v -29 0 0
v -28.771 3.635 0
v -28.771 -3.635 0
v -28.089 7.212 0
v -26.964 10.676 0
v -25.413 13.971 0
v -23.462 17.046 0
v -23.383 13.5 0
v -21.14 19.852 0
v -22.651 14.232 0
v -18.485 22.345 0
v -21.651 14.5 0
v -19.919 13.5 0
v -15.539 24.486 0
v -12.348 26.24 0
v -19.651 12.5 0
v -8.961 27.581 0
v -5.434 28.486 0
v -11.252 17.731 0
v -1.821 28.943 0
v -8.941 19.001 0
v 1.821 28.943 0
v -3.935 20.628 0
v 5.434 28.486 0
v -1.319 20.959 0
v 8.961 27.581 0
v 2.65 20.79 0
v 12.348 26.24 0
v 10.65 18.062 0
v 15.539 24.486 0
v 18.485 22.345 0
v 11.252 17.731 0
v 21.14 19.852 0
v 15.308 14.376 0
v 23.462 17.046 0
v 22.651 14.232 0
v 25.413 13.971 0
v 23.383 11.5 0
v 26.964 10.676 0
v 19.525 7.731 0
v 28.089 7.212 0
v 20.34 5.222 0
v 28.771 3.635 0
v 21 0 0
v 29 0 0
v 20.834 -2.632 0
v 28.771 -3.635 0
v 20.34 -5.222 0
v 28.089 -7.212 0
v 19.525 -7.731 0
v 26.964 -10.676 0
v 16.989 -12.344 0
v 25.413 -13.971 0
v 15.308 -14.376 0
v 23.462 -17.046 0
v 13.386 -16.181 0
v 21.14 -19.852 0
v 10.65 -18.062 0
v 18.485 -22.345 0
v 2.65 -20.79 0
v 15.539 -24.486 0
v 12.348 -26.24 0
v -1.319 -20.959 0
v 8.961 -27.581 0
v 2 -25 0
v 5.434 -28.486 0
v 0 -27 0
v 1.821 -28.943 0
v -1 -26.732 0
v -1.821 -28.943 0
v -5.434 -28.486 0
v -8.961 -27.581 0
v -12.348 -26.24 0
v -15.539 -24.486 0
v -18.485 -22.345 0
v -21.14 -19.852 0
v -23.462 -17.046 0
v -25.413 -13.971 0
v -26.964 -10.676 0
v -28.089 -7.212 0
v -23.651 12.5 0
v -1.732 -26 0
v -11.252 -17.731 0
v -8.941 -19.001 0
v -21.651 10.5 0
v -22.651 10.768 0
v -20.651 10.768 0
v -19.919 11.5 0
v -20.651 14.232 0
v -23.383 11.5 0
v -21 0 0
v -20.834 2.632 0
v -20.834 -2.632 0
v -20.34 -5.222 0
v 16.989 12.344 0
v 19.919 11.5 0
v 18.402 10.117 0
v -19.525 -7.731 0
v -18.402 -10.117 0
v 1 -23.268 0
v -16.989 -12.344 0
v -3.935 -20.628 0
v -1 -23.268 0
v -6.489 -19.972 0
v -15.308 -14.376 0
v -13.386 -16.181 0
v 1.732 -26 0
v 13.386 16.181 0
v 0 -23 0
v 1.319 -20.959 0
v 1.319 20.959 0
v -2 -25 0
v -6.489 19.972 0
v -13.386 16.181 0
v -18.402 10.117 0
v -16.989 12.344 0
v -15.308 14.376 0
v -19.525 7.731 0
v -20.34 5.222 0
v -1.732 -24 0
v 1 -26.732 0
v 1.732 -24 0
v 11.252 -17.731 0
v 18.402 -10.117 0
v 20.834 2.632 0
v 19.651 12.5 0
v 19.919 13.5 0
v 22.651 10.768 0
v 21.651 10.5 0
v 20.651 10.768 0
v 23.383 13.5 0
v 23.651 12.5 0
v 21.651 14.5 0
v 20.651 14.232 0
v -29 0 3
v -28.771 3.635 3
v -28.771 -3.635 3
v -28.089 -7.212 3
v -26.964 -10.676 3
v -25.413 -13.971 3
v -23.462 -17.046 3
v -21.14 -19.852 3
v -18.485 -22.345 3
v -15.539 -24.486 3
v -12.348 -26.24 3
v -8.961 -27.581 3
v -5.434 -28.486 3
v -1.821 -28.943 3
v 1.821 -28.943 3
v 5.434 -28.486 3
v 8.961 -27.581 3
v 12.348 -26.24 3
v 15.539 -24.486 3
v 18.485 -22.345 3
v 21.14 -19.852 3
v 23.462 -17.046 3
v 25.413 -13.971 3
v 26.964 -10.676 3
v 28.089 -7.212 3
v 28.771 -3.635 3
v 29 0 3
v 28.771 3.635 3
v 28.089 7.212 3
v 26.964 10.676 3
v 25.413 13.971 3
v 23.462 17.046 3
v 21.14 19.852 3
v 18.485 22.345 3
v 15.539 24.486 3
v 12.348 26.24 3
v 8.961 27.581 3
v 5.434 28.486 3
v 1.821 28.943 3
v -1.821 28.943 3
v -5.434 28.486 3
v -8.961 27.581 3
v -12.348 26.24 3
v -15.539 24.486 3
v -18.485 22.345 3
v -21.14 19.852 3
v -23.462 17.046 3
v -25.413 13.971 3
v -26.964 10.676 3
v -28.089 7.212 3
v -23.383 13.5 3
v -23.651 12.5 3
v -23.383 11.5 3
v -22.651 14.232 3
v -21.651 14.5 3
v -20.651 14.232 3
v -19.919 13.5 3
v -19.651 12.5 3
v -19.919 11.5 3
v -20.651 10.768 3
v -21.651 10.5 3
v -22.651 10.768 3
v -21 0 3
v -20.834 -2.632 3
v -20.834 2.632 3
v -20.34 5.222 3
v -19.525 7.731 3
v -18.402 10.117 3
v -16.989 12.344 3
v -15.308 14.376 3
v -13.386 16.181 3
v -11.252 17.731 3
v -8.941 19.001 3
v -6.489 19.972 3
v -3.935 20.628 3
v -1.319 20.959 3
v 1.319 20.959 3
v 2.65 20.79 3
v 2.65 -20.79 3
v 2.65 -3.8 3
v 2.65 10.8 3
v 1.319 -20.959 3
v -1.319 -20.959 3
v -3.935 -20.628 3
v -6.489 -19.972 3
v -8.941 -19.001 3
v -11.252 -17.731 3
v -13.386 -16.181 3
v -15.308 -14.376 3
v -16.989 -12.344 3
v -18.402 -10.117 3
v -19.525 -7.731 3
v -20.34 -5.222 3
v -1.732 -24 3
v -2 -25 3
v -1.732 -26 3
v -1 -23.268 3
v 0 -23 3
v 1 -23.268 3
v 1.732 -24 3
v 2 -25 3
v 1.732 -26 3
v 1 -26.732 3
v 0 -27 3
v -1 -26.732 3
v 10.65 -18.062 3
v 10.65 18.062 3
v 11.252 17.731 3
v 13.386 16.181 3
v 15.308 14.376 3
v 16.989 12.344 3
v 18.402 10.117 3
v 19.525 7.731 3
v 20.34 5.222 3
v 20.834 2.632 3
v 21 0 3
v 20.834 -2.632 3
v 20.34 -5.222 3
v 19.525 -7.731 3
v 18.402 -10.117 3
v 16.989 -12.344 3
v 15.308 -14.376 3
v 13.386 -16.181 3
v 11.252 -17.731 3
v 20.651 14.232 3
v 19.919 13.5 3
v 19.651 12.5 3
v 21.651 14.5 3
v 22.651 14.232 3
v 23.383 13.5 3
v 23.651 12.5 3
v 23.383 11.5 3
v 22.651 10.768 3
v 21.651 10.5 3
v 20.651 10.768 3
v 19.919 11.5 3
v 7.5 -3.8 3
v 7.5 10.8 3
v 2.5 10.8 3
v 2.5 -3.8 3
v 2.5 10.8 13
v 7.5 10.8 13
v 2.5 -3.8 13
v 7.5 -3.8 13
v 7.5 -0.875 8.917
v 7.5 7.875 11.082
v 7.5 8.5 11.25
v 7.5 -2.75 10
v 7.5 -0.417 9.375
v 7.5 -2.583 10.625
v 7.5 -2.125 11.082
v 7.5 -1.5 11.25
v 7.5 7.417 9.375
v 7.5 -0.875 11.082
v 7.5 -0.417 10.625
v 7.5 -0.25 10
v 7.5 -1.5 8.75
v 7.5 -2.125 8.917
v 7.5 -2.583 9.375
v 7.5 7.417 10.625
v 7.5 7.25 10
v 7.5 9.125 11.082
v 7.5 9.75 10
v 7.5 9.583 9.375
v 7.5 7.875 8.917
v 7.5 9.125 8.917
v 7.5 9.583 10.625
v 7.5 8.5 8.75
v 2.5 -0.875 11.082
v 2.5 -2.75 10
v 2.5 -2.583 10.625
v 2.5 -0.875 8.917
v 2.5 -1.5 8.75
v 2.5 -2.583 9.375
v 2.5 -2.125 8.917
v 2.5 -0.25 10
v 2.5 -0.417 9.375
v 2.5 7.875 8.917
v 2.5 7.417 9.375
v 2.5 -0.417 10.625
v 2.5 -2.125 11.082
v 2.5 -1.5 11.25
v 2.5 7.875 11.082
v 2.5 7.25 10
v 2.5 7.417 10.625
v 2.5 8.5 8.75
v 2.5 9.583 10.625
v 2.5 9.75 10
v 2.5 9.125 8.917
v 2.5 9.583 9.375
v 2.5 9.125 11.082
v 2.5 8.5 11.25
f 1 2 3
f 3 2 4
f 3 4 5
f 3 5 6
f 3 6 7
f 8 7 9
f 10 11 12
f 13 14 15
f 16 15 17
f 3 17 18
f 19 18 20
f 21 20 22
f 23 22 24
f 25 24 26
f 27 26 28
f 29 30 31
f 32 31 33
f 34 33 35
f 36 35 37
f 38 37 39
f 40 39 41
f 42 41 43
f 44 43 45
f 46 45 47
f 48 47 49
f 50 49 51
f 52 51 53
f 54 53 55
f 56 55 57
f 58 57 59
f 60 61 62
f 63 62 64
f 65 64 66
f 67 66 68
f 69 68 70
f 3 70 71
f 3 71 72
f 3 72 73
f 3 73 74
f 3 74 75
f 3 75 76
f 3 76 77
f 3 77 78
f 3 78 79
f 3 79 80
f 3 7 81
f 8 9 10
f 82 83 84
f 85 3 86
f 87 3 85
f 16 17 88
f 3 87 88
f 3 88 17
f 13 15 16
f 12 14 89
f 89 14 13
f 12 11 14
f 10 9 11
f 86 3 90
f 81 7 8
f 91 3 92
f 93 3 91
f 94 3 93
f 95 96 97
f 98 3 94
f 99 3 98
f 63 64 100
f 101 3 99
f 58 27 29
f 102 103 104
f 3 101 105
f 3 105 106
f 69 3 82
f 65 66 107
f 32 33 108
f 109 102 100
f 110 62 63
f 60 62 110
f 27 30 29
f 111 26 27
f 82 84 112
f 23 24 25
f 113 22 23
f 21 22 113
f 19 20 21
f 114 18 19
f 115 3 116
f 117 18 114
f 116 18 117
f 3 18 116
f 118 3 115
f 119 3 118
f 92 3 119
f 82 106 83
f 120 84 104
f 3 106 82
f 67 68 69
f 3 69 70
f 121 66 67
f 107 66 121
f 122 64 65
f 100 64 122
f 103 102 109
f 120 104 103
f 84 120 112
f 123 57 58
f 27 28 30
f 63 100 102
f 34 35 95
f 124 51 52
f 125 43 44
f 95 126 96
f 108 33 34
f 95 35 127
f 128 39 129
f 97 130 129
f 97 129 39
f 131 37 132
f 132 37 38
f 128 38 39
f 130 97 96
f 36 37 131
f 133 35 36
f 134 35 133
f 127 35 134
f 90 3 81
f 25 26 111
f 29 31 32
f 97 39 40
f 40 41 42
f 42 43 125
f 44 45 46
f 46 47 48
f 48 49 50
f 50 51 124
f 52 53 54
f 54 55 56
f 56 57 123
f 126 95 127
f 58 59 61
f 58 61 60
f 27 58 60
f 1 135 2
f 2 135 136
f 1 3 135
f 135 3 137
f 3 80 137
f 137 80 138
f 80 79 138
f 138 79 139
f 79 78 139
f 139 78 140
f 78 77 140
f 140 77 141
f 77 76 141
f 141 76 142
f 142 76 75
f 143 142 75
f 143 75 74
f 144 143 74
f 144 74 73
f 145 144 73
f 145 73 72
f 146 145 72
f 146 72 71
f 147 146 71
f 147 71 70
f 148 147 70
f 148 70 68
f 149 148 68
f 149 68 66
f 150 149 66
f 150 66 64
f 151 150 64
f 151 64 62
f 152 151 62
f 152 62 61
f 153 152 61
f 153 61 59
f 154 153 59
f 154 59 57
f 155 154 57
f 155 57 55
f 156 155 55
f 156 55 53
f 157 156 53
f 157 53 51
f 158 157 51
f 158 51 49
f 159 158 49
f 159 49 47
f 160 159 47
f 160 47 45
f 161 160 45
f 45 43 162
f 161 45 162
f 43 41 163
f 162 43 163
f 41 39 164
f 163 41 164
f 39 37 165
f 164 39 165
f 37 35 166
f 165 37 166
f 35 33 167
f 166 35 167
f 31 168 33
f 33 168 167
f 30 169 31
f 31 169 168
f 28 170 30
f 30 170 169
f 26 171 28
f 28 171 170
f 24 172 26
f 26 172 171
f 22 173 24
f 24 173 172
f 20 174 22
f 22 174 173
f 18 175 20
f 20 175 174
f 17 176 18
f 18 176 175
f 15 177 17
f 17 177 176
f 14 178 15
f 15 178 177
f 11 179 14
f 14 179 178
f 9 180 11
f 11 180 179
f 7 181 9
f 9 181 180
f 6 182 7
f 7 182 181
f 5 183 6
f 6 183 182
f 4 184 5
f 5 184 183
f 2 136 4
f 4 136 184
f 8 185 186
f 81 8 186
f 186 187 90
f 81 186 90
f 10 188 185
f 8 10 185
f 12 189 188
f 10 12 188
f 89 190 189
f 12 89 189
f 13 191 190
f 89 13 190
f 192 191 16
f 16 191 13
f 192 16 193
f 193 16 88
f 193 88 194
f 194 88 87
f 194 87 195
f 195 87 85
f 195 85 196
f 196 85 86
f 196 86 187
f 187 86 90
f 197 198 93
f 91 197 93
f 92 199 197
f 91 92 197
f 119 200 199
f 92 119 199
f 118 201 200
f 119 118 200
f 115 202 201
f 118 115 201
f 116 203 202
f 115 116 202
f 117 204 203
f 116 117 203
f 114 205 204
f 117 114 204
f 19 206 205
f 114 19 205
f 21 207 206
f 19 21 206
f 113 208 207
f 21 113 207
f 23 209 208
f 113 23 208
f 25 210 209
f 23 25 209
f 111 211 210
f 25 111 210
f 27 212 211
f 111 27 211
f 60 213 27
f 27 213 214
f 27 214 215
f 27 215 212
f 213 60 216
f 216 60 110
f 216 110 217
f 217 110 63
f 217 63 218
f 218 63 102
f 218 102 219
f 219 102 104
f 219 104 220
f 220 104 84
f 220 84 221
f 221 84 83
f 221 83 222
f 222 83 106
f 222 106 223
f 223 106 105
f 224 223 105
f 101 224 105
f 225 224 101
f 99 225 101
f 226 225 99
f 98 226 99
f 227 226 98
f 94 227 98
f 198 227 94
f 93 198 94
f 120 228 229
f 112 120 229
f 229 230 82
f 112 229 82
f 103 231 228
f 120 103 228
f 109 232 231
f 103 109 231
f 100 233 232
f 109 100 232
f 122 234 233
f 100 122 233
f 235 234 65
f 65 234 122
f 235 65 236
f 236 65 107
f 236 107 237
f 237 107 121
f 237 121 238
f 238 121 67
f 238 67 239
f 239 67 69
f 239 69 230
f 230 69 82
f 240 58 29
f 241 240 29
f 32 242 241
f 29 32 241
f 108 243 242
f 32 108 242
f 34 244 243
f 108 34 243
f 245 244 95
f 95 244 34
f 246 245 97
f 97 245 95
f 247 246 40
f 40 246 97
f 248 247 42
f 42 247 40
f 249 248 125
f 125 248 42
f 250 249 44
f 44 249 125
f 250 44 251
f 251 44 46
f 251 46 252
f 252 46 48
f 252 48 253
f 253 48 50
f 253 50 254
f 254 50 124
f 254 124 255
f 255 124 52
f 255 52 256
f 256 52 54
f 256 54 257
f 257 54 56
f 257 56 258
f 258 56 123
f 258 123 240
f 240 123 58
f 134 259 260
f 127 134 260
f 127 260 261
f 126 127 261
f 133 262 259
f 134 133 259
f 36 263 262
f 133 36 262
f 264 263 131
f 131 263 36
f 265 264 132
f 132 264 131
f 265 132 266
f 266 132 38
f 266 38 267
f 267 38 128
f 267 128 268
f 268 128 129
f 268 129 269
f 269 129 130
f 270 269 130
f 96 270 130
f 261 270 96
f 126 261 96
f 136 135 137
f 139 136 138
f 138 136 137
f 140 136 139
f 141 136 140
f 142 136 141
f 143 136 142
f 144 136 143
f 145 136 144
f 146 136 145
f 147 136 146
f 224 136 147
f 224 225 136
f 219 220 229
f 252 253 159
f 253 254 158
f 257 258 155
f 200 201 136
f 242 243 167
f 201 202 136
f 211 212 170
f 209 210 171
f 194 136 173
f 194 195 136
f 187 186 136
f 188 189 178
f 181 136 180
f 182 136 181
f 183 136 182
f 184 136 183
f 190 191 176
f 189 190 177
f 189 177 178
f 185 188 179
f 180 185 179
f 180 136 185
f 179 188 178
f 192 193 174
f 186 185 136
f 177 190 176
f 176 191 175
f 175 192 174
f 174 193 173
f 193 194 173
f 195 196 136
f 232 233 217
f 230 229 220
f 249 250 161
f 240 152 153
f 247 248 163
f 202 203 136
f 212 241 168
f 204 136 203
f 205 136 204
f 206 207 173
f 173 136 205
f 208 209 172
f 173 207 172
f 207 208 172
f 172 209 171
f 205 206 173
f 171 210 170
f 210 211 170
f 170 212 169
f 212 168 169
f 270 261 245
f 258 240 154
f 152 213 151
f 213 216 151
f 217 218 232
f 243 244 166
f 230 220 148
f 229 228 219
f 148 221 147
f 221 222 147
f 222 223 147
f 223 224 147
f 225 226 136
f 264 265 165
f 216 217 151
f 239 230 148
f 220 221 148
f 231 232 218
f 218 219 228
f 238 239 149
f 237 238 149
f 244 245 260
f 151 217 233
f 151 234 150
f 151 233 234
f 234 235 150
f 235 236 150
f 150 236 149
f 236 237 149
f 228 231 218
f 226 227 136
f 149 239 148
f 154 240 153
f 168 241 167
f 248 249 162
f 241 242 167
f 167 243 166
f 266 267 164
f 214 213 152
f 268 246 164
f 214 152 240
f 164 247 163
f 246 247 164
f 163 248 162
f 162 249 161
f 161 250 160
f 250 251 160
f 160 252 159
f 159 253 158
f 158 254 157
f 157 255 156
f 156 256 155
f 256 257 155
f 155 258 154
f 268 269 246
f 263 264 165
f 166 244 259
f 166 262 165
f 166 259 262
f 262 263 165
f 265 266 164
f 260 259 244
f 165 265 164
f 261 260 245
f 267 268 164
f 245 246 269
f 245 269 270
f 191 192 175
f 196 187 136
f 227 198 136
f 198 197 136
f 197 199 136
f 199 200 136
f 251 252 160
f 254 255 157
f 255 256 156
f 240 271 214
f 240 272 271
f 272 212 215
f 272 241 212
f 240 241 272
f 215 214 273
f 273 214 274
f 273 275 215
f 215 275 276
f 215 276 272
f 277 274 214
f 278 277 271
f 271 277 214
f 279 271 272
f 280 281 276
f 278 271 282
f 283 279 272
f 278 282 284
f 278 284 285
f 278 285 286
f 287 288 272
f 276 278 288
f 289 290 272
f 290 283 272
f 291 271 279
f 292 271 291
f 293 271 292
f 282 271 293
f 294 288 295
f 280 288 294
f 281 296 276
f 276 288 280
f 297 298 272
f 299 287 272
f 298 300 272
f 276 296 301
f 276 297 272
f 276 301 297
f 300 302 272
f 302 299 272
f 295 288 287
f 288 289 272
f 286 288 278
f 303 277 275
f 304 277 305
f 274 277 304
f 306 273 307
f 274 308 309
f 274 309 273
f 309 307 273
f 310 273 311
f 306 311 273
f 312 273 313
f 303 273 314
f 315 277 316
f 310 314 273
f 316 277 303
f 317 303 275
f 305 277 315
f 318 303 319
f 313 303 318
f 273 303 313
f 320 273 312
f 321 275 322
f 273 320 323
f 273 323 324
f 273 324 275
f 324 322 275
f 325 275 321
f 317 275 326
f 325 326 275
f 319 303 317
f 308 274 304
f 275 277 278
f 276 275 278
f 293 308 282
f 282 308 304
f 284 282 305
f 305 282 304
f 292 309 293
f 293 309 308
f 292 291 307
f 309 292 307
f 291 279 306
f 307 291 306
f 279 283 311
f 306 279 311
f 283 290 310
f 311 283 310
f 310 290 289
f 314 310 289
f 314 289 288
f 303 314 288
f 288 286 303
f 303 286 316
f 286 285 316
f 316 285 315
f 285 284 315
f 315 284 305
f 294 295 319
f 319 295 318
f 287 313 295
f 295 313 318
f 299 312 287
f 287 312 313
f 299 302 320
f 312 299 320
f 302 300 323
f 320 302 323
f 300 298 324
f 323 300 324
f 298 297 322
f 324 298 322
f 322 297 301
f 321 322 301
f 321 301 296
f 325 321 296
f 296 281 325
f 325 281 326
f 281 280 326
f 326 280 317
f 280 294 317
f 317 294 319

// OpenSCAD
// file: microswitch.scad
//
// Mendel90
//
// GNU GPL v2
// nop.head@gmail.com
// hydraraptor.blogspot.com
//
// Microswitch used for endstops
//
// Found at:
// https://github.com/christianege/openscad/blob/master/vitamins/microswitch.scad

microswitch_color="black";
microswitch_button_color="red";
microswitch_contact_color="grey";

function microswitch_thickness() = 6.4;
function microswitch_length() = 19.8;

function microswitch_first_hole_x_offset() = -2;

function microswitch_button_x_offset() = -(5.1 - microswitch_first_hole_x_offset()) + microswitch_length() / 2;
function microswitch_hole_y_offset() = -8.4;

module microswitch_hole_positions()
{
    for(x = [microswitch_first_hole_x_offset(), 7.5])
         translate([x, microswitch_hole_y_offset(), microswitch_thickness() / 2])
              child();
}

module microswitch_holes(r = No2_pilot_radius, h = 7.5)
{
    translate([0, 0, -microswitch_thickness() - h / 2])
        microswitch_hole_positions()
            teardrop_plus(r = r, h = h + 1, $fn=100, center = true);
}

module microswitch_contact_space() {
    depth = 15;
    translate([-microswitch_first_hole_x_offset() + 0.75,  -depth / 2 - 3, 0])
        cube([microswitch_length() - 2, depth, microswitch_thickness() - 2], center = true);
}

module microswitch(exploded=flase) {
    //vitamin("SMMICRO: Microswitch");
    translate([-(5.1 + 9.5 - 7.5), -(8.4 + 2.5), -3.2 + (exploded ? 5 : 0)]) {   // put operating point of button at the origin
        color(microswitch_color) render() difference() {              // main body
            cube([19.8, 10.2, 6.4]);
            translate([10, 9.5, -1])
                cube([19.8, 10.2, 8]);                      // lower half of top
            translate([5.1, 2.5, -1])
                cylinder(r = 2.35 / 2, h = 8);              // mounting holes
            translate([5.1 + 9.5, 2.5, -1])
                cylinder(r = 2.35 / 2, h = 8);
        }
        color(microswitch_button_color) render()                           // orange button
            translate([5.1 + 9.5 - 7.5,8.4 + 2.5 - 0.5,1.6])
                linear_extrude(height = 3.2)
                    hull() {
                        circle(r = 1);
                        translate([0,-4])
                            circle(r = 1);
                    }
        color(microswitch_contact_color)  render()                            // yellow contacts
            for(x = [1.6, 1.6 + 8.8, 1.6 + 8.8 + 7.3])
                translate([x, 2.5 - 6.4, 1.6])
                    difference() {
                        cube([0.5, 7, 3.2]);
                        translate([0, 1.6, 1.6])
                            rotate([0,90,0])
                                cylinder(r = 0.8, h = 5, center = true);
                    }
    }
}
// main file
use <microswitch.scad>;

module zprobe() {
	h=3;

union() {

	union() {
		translate([5.3/2,-22.5,0]) cube([8,45,h]);
			translate([0,3.5,0]) difference() {
				translate([2.5,-7.3,h]) cube([5,14.6,10]);
				translate([2,-5,10]) rotate([90,0,90]) cylinder(r=1.25, h=8, $fn=12);
				translate([2,5,10]) rotate([90,0,90]) cylinder(r=1.25, h=8, $fn=12);
			}
	difference() {
		cylinder(r=29, h=h, $fn=50);
		translate([0,0,-0.5])cylinder(r=21, h=h+1, $fn=50);
	
			for (a = [0:2]) {
				rotate(a*120) {
					translate([0, -25, -0.5])
					cylinder(r=2, h=h+1, $fn=12);
		   }
			}
		}
	}
}
}

zprobe();
//% rotate([0,0,90]) translate([0,0,10]) microswitch();
